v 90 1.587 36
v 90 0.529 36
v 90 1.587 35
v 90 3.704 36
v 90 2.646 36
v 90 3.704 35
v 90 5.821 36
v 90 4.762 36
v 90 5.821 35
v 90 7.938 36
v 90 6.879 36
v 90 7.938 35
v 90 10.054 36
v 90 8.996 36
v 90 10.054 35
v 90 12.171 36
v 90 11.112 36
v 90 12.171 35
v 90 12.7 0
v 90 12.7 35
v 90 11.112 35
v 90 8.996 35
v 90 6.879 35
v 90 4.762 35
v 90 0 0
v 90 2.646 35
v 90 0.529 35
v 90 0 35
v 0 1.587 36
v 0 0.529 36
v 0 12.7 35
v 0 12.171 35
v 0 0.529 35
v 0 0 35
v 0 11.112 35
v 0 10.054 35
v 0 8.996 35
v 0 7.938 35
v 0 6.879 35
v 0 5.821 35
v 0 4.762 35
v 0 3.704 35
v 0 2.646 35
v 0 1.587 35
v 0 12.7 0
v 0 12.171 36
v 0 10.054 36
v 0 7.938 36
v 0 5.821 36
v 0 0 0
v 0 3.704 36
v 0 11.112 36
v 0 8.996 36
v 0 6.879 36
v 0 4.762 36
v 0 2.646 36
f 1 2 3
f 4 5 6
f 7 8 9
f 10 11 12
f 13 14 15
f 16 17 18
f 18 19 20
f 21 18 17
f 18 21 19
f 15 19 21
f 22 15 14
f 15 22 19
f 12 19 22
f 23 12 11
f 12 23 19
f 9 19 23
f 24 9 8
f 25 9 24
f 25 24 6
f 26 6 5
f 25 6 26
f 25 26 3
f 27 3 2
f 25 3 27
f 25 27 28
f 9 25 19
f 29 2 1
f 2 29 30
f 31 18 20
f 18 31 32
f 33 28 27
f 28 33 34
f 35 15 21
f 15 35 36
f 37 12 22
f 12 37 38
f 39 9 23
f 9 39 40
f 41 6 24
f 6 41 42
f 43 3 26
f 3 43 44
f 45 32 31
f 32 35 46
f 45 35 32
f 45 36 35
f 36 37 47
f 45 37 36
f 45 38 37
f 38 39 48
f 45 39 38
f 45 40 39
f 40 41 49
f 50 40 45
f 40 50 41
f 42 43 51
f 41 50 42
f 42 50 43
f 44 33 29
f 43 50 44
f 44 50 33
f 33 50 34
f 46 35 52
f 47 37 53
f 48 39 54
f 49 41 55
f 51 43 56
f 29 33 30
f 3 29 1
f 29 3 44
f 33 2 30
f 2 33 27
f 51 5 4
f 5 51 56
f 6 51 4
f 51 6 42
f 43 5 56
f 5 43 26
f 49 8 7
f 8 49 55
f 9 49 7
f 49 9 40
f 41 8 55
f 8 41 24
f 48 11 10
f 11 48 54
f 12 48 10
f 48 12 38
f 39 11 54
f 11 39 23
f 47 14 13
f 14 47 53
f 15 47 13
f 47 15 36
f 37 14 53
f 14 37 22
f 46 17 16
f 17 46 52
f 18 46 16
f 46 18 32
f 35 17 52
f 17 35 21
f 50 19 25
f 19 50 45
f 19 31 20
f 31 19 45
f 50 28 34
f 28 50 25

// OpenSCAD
LENGTH = 90;
WIDTH = 12.7;
LINES = 6;
BASE = 35;
STAMP_HEIGHT = 1;

cube([90, WIDTH, BASE]);

for(i = [0 : LINES-1]) {
    translate([0, 0.25 * WIDTH/LINES + i * (WIDTH/LINES), BASE])
        cube([90, 0.5 * WIDTH/LINES, STAMP_HEIGHT]);
}
